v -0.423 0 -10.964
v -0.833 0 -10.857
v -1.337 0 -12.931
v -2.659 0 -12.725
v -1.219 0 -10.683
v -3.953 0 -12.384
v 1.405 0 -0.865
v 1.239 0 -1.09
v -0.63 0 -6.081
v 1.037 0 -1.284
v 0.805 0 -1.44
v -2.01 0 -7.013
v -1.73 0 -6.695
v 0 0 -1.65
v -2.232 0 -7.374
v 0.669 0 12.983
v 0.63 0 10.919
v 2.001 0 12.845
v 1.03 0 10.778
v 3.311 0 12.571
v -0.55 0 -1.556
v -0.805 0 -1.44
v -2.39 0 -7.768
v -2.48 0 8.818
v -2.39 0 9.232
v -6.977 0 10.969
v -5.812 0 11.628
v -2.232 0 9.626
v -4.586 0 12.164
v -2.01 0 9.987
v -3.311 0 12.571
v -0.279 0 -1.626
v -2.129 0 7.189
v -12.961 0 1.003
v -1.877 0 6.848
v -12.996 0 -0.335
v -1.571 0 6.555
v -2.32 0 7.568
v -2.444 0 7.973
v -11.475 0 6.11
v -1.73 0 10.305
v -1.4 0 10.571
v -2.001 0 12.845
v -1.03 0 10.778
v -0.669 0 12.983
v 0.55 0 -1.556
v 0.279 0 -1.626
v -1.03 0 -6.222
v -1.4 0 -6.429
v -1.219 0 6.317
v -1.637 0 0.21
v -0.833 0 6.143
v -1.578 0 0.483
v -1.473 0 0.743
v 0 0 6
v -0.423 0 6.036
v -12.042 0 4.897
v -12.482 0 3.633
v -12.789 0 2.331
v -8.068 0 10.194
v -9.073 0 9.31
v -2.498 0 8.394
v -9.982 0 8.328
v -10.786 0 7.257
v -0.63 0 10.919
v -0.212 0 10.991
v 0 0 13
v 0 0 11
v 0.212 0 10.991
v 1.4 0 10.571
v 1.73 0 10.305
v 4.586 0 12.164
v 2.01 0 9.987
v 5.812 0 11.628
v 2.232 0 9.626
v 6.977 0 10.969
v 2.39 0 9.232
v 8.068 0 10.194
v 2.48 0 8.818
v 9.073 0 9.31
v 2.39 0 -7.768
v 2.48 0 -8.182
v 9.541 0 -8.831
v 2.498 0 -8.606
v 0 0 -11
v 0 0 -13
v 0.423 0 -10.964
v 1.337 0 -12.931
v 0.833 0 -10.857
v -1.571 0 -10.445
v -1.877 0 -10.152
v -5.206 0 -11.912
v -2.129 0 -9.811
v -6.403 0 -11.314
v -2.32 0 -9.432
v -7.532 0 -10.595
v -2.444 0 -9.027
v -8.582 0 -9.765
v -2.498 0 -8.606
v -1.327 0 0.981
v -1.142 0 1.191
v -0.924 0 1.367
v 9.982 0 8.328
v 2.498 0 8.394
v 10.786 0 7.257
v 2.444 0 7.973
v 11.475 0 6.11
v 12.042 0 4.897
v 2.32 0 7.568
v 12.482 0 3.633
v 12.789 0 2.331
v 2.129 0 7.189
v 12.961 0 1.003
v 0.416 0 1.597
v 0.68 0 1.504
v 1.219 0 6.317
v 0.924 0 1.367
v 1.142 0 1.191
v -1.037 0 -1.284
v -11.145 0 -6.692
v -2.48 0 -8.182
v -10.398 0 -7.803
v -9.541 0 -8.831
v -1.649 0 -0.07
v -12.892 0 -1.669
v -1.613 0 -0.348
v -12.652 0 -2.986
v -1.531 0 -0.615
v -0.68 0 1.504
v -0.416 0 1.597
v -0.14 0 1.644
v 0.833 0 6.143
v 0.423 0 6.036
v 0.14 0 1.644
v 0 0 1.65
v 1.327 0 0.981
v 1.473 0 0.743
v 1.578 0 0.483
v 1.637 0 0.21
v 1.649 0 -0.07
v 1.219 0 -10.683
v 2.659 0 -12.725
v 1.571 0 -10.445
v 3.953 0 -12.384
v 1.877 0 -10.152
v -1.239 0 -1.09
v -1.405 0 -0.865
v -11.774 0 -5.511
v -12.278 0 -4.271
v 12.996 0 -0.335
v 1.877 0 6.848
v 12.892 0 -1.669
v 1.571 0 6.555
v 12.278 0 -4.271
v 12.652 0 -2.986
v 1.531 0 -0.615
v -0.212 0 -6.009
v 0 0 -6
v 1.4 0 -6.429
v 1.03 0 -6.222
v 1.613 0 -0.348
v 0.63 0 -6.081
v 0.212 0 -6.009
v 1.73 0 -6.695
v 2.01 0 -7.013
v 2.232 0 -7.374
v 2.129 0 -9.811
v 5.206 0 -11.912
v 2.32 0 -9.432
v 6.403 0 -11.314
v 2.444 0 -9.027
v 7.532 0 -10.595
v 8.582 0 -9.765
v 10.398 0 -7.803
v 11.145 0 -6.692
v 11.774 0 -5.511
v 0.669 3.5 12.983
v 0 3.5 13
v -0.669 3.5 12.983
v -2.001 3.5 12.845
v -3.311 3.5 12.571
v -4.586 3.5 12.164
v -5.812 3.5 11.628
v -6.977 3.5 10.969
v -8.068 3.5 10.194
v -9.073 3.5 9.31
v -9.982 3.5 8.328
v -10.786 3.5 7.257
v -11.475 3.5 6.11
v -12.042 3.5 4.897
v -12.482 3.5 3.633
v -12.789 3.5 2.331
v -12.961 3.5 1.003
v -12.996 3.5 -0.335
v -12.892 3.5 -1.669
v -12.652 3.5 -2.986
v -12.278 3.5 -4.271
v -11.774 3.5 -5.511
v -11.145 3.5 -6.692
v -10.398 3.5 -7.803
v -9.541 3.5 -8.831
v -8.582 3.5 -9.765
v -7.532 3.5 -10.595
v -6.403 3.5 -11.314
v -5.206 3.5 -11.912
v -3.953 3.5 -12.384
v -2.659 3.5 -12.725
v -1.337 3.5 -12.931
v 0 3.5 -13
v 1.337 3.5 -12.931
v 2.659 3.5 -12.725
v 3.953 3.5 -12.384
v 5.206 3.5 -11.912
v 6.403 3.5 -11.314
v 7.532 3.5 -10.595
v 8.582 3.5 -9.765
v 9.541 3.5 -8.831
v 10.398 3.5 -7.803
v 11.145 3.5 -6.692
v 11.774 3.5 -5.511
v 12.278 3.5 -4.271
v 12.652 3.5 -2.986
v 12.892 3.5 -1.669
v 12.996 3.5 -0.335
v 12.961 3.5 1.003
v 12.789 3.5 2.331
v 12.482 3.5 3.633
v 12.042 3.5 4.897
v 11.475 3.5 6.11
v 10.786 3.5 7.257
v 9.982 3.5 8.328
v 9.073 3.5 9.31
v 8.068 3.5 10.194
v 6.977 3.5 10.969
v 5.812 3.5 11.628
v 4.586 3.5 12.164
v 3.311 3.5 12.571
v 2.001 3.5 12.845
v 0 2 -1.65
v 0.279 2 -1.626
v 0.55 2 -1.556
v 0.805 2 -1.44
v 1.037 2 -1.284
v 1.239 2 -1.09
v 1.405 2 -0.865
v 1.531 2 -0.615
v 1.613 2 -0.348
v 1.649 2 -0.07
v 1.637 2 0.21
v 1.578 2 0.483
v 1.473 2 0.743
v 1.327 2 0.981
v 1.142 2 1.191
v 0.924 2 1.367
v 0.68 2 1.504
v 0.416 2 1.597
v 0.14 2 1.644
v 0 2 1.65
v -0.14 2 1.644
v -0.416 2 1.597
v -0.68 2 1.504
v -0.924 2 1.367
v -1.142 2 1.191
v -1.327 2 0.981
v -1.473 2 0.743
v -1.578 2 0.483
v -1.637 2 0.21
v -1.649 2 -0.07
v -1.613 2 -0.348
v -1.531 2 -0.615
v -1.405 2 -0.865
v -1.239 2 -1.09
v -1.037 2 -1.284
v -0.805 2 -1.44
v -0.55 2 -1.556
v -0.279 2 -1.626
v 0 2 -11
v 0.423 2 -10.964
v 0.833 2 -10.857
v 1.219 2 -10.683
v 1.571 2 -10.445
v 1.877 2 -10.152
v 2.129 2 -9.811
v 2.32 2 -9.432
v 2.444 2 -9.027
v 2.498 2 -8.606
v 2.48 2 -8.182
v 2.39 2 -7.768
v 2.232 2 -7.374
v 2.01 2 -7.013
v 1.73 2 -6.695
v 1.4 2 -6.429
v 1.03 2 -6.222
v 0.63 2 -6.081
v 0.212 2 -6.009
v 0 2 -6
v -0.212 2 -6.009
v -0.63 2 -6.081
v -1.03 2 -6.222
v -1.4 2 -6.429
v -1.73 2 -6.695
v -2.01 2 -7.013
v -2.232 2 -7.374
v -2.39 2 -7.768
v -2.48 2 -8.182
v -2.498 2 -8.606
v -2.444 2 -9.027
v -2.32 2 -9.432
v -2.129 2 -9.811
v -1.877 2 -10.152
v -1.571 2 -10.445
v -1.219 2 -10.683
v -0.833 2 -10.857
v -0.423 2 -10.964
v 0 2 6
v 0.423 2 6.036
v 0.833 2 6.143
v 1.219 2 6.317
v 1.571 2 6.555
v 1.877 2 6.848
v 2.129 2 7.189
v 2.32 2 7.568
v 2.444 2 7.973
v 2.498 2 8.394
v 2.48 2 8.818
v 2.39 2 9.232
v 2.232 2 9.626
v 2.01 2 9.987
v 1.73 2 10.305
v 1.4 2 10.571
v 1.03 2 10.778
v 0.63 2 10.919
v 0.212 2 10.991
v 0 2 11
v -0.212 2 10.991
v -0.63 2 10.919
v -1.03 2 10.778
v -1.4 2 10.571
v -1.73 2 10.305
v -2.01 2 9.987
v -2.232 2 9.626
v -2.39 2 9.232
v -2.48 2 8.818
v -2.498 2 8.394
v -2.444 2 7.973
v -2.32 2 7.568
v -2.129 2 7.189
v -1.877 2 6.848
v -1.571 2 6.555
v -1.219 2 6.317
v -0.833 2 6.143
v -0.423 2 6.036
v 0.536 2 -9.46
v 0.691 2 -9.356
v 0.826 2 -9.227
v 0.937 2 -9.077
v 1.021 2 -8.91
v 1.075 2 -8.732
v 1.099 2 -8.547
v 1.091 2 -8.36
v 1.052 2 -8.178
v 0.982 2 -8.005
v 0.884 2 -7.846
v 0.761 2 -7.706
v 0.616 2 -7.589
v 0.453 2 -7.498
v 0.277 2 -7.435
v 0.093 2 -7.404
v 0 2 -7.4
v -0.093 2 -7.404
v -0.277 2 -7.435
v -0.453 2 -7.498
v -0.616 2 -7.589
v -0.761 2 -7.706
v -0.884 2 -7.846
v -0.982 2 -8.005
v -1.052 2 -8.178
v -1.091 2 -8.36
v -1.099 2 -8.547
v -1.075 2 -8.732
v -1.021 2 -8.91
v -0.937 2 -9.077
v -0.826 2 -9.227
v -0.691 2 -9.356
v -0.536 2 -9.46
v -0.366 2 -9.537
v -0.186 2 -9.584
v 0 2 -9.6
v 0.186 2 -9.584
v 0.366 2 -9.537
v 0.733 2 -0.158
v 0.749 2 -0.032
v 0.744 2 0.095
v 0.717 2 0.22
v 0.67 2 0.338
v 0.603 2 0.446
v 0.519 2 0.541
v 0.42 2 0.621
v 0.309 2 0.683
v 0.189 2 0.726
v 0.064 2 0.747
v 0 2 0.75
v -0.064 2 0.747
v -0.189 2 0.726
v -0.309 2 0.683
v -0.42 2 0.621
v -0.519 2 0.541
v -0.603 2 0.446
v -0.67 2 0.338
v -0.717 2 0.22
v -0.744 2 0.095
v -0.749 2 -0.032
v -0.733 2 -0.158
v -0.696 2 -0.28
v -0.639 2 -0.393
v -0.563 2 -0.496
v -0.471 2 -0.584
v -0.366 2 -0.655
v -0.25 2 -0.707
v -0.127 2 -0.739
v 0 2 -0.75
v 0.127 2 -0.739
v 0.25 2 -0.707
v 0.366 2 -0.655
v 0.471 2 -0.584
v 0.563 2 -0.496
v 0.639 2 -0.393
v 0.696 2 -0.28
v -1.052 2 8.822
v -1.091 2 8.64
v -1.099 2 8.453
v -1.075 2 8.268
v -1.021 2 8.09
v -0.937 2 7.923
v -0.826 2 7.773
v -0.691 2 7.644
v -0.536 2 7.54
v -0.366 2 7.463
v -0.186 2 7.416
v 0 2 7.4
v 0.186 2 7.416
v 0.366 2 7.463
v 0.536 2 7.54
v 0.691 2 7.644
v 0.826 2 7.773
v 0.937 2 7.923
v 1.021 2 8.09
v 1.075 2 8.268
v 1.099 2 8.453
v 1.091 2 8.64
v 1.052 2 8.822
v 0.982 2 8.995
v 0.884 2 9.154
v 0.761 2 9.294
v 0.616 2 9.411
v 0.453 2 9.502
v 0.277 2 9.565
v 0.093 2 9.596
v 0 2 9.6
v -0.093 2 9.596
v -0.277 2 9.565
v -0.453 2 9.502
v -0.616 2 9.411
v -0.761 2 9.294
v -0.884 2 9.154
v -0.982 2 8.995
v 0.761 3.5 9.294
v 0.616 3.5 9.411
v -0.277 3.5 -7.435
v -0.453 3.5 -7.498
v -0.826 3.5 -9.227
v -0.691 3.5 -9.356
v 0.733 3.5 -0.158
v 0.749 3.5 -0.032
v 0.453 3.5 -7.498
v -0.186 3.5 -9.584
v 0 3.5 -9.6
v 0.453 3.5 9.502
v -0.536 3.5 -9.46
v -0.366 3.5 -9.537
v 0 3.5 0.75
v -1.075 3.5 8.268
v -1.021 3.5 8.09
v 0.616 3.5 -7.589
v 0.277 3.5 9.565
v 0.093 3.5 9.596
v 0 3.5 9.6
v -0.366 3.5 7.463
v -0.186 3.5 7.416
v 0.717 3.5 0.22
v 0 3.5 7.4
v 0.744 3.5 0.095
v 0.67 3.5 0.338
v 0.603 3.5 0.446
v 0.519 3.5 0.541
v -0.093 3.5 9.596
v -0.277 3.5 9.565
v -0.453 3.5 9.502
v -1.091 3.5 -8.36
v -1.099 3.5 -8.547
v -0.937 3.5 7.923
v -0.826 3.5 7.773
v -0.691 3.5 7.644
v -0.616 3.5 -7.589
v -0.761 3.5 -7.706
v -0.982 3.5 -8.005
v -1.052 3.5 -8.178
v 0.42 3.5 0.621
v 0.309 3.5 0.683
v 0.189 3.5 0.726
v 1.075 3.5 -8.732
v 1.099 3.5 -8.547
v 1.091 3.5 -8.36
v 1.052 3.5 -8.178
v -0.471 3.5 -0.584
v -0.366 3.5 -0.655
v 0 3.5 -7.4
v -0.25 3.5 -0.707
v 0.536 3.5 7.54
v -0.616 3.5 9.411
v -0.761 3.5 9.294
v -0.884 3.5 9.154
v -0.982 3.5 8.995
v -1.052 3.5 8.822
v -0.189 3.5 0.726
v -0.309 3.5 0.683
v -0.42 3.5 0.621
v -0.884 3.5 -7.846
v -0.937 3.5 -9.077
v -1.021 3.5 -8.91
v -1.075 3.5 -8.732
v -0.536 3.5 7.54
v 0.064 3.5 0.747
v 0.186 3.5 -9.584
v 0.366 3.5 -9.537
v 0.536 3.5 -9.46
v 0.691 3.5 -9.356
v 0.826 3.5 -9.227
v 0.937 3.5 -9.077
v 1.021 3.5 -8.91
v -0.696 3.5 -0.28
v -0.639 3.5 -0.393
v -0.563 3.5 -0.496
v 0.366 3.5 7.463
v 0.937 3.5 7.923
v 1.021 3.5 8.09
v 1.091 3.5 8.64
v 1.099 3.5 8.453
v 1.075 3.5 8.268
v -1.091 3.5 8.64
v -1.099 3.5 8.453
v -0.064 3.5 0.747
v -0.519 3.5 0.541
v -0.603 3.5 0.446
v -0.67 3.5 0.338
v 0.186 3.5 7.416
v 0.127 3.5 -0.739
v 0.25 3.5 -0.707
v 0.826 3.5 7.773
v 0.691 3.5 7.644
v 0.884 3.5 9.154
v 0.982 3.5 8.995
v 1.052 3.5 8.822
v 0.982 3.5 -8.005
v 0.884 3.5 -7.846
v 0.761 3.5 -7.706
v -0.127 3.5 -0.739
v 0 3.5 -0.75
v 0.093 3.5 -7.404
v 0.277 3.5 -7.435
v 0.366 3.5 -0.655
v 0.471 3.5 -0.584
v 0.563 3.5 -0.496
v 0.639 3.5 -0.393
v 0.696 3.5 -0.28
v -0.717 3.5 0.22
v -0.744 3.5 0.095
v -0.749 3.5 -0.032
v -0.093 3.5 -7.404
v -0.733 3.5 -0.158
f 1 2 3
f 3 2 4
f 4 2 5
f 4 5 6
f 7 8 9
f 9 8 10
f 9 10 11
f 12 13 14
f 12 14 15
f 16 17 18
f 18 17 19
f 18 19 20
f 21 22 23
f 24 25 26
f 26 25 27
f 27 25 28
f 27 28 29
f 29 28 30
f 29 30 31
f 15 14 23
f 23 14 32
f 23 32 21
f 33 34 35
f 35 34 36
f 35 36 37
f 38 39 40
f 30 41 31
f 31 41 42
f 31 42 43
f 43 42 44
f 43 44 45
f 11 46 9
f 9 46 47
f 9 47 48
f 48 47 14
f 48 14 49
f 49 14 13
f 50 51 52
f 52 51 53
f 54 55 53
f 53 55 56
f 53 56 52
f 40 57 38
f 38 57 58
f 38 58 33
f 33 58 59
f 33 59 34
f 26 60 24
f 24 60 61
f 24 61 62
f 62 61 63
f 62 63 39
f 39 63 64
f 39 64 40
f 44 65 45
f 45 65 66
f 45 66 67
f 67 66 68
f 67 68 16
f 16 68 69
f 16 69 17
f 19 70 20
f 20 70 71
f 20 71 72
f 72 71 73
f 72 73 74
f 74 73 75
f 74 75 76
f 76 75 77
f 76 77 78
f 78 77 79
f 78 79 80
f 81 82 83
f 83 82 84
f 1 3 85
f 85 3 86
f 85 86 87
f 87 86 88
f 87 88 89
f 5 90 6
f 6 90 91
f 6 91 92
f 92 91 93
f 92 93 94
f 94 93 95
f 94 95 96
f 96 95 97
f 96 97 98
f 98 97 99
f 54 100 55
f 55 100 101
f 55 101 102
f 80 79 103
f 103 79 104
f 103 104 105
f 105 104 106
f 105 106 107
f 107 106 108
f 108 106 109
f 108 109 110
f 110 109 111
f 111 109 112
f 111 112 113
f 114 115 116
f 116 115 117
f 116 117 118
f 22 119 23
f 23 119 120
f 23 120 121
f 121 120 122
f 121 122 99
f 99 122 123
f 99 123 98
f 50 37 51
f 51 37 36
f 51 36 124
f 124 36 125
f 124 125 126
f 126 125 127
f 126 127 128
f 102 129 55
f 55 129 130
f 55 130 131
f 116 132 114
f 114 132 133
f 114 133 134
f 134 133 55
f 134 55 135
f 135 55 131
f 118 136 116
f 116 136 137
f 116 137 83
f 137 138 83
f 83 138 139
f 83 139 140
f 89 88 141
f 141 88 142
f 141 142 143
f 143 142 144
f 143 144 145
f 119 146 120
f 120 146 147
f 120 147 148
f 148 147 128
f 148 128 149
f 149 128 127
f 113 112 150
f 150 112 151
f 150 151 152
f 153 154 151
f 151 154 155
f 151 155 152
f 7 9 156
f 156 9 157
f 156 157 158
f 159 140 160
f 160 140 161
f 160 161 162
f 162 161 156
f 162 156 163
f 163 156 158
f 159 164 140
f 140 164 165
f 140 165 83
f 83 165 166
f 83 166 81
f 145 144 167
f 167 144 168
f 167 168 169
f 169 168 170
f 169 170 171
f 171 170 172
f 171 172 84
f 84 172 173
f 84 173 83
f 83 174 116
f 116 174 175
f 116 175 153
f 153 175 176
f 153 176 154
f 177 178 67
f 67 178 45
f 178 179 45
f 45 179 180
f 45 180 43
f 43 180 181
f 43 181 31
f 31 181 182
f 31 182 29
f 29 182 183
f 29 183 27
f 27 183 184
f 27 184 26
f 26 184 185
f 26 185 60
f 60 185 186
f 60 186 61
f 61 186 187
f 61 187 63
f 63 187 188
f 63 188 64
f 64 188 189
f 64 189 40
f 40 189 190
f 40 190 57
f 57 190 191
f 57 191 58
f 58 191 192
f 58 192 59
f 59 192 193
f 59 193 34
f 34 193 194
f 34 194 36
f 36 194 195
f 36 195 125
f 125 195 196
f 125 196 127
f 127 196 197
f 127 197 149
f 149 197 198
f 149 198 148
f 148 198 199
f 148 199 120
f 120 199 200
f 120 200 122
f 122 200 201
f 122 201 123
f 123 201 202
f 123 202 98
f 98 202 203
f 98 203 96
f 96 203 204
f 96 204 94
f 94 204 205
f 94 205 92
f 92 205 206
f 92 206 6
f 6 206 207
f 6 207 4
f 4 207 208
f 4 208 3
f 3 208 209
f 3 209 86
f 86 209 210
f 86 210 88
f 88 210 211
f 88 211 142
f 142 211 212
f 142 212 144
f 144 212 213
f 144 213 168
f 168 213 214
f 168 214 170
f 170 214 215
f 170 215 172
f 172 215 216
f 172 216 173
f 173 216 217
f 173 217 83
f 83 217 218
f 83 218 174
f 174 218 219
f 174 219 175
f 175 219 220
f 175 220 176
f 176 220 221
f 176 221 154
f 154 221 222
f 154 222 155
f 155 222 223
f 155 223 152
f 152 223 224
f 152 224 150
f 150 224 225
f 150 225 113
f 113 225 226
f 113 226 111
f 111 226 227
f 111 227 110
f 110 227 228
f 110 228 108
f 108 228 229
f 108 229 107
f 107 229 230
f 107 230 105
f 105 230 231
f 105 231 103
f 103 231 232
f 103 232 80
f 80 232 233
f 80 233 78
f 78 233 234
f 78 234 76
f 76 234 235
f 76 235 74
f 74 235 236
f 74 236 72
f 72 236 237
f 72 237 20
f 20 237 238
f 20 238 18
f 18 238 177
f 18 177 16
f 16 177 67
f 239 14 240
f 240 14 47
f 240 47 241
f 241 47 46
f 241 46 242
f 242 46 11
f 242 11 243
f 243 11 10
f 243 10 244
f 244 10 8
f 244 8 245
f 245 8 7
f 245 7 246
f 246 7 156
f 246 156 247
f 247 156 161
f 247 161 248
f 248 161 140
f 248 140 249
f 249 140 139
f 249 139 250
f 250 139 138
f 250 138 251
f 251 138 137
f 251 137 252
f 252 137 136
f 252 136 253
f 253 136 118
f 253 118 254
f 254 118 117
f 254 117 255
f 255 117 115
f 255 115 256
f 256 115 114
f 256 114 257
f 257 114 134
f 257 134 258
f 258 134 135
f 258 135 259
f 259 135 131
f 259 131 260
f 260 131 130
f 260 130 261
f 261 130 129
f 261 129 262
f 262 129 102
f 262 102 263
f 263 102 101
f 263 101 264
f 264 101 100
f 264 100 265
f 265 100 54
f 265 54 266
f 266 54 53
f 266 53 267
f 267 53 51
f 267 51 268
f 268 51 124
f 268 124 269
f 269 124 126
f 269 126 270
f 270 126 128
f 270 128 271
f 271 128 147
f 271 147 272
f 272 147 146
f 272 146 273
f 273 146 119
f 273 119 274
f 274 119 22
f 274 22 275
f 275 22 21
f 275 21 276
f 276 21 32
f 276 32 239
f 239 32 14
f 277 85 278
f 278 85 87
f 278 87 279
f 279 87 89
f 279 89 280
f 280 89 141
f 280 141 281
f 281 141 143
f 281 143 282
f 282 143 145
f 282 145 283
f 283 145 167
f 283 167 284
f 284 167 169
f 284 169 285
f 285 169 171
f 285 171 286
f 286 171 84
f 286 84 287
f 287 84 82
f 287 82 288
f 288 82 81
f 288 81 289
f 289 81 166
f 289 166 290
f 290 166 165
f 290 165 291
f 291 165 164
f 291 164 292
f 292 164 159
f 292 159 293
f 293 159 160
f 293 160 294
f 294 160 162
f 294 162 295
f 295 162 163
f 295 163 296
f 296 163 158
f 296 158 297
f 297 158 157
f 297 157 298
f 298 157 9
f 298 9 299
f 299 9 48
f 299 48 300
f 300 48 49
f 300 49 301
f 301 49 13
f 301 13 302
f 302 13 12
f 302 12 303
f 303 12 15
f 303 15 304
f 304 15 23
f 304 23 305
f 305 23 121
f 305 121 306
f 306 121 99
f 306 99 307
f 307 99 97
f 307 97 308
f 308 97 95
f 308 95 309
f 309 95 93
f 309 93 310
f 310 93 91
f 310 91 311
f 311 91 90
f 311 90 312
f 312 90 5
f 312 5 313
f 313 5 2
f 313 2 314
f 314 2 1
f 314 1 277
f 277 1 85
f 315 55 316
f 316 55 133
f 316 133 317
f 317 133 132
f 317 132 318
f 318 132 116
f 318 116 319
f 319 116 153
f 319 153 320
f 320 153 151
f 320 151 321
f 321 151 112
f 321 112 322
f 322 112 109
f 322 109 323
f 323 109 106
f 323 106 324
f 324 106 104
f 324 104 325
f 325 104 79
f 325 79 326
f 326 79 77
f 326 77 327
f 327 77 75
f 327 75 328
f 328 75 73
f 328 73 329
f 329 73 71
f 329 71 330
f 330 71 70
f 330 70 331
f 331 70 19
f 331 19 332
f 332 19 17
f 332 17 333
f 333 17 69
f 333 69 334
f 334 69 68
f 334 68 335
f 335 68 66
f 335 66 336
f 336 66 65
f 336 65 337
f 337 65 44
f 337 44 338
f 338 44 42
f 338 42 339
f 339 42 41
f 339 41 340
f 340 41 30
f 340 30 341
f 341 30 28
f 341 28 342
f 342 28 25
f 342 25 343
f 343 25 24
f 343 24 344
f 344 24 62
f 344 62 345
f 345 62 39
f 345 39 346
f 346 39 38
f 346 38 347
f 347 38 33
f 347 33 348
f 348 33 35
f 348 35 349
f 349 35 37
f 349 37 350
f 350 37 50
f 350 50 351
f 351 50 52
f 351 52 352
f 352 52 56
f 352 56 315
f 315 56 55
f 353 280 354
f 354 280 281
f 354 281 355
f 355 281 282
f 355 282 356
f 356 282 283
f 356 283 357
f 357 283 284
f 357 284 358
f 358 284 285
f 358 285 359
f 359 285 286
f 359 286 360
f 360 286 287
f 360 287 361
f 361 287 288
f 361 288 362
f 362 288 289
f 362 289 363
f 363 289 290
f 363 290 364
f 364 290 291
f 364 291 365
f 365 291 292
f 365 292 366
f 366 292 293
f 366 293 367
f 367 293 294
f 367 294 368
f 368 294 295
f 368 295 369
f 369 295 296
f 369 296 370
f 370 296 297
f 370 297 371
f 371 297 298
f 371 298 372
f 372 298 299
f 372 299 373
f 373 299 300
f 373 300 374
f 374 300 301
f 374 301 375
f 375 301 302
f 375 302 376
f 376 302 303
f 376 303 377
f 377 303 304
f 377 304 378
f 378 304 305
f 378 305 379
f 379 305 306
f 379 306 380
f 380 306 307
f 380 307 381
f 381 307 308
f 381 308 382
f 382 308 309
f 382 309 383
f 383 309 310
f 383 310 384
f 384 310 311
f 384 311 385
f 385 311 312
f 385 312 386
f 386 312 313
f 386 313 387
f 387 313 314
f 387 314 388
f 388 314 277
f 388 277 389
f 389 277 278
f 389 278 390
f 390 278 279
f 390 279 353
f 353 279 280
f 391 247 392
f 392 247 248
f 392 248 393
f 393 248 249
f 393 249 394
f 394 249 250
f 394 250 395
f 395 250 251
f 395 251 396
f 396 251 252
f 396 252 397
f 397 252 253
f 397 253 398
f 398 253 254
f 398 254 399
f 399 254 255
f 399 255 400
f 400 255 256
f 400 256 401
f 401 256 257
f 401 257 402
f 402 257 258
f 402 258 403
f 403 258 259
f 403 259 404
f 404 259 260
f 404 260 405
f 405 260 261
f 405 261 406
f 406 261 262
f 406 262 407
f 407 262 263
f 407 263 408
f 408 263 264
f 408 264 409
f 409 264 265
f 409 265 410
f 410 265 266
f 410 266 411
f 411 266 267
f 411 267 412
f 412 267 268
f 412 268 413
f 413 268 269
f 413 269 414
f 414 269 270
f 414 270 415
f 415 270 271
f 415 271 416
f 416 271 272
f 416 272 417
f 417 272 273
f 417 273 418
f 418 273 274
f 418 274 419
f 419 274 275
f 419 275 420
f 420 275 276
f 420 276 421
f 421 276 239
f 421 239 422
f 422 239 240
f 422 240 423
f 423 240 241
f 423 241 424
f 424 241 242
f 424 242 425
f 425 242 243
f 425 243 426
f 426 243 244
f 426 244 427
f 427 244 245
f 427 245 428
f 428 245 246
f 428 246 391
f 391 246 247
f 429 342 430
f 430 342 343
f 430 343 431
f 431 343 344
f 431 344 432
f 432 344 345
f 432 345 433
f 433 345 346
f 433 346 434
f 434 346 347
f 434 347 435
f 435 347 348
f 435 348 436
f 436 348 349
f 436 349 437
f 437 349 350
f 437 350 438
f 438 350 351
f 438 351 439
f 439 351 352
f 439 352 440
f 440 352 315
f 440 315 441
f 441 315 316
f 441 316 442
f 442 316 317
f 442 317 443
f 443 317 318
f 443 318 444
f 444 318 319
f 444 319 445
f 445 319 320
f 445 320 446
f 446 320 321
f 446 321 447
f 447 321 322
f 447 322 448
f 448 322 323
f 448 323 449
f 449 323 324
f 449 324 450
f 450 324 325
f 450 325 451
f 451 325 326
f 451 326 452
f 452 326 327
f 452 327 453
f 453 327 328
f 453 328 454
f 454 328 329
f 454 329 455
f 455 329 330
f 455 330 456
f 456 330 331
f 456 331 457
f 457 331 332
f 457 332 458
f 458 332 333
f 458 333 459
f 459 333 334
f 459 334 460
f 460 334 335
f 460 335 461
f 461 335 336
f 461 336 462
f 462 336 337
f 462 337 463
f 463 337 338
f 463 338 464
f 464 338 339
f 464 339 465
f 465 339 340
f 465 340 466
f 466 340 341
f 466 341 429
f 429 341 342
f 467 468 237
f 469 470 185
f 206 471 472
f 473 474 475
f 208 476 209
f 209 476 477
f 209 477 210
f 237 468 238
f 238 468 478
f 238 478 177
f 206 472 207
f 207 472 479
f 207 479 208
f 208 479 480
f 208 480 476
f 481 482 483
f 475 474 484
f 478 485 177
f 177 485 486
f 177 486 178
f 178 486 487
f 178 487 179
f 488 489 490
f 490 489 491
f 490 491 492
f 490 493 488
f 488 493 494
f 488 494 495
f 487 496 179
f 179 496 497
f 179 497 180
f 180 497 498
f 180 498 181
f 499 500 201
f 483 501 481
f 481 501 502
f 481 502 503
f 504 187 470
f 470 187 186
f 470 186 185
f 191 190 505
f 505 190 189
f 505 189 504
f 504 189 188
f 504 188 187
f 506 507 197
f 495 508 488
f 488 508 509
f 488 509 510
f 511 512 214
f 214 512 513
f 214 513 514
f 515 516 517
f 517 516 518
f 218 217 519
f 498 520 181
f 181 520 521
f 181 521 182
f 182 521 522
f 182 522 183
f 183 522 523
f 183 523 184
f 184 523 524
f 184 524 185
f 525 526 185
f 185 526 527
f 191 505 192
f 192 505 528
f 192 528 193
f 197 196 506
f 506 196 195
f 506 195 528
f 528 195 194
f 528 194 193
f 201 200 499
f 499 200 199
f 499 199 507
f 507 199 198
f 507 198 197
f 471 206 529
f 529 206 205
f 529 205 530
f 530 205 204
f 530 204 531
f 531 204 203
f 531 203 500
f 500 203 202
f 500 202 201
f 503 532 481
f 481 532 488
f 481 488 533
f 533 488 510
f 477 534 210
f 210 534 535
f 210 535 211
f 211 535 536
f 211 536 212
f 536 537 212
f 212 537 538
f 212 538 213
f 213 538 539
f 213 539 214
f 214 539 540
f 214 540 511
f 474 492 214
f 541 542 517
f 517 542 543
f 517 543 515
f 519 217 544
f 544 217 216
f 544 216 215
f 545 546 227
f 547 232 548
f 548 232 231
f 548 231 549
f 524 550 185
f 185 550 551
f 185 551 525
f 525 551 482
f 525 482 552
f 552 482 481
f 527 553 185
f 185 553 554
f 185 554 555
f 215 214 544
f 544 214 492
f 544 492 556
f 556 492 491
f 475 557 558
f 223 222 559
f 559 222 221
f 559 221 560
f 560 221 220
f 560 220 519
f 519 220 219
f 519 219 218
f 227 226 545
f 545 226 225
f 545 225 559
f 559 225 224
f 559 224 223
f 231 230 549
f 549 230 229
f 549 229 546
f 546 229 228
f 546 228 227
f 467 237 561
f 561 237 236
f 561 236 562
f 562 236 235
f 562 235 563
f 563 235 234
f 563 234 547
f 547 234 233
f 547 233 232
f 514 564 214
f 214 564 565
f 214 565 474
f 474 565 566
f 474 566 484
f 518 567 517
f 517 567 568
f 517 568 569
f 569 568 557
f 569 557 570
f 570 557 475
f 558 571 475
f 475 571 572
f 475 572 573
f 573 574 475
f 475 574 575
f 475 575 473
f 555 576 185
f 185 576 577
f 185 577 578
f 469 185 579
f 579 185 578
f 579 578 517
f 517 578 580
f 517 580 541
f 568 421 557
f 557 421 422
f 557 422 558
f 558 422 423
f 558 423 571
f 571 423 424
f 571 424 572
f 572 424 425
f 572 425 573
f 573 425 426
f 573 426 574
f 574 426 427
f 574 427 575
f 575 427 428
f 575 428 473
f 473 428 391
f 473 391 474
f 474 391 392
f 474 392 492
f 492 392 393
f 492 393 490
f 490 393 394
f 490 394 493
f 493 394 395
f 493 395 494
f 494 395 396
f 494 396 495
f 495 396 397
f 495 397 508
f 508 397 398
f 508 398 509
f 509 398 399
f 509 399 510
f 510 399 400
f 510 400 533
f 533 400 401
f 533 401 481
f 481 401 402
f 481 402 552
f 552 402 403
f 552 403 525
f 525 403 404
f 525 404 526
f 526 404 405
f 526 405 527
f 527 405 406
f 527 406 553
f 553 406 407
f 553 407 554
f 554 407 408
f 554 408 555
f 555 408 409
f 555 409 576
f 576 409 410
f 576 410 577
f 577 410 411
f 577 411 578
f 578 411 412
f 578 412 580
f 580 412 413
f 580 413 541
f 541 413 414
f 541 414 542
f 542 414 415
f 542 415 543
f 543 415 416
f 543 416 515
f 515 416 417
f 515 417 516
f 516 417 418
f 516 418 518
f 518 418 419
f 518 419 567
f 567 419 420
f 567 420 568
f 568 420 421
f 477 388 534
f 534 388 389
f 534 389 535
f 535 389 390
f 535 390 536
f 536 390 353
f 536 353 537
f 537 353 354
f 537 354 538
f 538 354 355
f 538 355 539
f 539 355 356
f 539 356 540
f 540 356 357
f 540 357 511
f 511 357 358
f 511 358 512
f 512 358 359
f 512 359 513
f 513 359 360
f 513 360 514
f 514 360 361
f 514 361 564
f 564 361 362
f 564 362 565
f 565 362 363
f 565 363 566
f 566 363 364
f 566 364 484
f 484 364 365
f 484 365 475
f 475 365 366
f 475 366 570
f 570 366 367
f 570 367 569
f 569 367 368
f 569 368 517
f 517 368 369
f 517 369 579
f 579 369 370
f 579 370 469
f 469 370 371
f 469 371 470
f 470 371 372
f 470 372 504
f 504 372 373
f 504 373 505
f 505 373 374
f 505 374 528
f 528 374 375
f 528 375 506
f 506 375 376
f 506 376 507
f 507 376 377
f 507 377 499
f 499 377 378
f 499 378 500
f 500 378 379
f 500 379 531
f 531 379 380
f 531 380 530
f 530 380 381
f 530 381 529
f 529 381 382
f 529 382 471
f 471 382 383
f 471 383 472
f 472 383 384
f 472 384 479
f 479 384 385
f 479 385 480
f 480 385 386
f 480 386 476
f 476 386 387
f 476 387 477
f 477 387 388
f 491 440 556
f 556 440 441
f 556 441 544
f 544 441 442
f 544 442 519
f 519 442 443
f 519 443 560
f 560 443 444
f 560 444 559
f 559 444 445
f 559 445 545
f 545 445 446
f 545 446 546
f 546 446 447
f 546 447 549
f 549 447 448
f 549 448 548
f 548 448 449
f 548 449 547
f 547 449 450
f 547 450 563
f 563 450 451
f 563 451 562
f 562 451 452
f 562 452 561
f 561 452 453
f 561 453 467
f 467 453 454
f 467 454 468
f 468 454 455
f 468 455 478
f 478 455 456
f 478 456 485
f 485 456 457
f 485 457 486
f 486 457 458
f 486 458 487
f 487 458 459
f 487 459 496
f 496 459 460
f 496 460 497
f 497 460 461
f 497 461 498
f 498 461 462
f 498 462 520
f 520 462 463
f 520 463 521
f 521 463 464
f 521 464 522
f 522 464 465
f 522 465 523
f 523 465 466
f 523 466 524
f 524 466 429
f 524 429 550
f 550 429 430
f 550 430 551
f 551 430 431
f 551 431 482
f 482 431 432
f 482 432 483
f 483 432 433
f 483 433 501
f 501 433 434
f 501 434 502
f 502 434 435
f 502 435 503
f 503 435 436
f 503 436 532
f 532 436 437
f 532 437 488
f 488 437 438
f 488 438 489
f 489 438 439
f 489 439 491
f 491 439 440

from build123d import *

# Parameters (mm, degrees)
SKETCH1_R           = 13
SKETCH1_R_2         = 1.65
SKETCH1_R_3         = 2.5
BOSS_EXTRUDE1_DEPTH = 2
SKETCH2_R           = 13
SKETCH2_R_2         = 0.75
SKETCH2_R_3         = 1.1
BOSS_EXTRUDE2_DEPTH = 1.5


with BuildPart() as part:
    # Sketch1 → Boss-Extrude1 (new body)
    with BuildSketch(Plane(origin=(0, 0, 0), x_dir=(1, 0, 0), z_dir=(0, 1, 0))):
        with Locations(Location((0, 0, 0), (0, 0, 270))):
            Circle(SKETCH1_R)
        with Locations(Location((0, 0, 0), (0, 0, 270))):
            Circle(SKETCH1_R_2, mode=Mode.SUBTRACT)
        with Locations(Location((0, 8.5, 0), (0, 0, 270))):
            Circle(SKETCH1_R_3, mode=Mode.SUBTRACT)
        with Locations(Location((0, -8.5, 0), (0, 0, 270))):
            Circle(SKETCH1_R_3, mode=Mode.SUBTRACT)
    extrude(amount=BOSS_EXTRUDE1_DEPTH)

    # Sketch2 → Boss-Extrude2 (add)
    with BuildSketch(Plane(origin=(0, 2, 0), x_dir=(1, 0, 0), z_dir=(0, 1, 0))):
        with Locations(Location((0, 0, 0), (0, 0, 270))):
            Circle(SKETCH2_R)
        with Locations(Location((0, 0, 0), (0, 0, 270))):
            Circle(SKETCH2_R_2, mode=Mode.SUBTRACT)
        with Locations(Location((0, 8.5, 0), (0, 0, 270))):
            Circle(SKETCH2_R_3, mode=Mode.SUBTRACT)
        with Locations(Location((0, -8.5, 0), (0, 0, 270))):
            Circle(SKETCH2_R_3, mode=Mode.SUBTRACT)
    extrude(amount=BOSS_EXTRUDE2_DEPTH)


solid = part.part
